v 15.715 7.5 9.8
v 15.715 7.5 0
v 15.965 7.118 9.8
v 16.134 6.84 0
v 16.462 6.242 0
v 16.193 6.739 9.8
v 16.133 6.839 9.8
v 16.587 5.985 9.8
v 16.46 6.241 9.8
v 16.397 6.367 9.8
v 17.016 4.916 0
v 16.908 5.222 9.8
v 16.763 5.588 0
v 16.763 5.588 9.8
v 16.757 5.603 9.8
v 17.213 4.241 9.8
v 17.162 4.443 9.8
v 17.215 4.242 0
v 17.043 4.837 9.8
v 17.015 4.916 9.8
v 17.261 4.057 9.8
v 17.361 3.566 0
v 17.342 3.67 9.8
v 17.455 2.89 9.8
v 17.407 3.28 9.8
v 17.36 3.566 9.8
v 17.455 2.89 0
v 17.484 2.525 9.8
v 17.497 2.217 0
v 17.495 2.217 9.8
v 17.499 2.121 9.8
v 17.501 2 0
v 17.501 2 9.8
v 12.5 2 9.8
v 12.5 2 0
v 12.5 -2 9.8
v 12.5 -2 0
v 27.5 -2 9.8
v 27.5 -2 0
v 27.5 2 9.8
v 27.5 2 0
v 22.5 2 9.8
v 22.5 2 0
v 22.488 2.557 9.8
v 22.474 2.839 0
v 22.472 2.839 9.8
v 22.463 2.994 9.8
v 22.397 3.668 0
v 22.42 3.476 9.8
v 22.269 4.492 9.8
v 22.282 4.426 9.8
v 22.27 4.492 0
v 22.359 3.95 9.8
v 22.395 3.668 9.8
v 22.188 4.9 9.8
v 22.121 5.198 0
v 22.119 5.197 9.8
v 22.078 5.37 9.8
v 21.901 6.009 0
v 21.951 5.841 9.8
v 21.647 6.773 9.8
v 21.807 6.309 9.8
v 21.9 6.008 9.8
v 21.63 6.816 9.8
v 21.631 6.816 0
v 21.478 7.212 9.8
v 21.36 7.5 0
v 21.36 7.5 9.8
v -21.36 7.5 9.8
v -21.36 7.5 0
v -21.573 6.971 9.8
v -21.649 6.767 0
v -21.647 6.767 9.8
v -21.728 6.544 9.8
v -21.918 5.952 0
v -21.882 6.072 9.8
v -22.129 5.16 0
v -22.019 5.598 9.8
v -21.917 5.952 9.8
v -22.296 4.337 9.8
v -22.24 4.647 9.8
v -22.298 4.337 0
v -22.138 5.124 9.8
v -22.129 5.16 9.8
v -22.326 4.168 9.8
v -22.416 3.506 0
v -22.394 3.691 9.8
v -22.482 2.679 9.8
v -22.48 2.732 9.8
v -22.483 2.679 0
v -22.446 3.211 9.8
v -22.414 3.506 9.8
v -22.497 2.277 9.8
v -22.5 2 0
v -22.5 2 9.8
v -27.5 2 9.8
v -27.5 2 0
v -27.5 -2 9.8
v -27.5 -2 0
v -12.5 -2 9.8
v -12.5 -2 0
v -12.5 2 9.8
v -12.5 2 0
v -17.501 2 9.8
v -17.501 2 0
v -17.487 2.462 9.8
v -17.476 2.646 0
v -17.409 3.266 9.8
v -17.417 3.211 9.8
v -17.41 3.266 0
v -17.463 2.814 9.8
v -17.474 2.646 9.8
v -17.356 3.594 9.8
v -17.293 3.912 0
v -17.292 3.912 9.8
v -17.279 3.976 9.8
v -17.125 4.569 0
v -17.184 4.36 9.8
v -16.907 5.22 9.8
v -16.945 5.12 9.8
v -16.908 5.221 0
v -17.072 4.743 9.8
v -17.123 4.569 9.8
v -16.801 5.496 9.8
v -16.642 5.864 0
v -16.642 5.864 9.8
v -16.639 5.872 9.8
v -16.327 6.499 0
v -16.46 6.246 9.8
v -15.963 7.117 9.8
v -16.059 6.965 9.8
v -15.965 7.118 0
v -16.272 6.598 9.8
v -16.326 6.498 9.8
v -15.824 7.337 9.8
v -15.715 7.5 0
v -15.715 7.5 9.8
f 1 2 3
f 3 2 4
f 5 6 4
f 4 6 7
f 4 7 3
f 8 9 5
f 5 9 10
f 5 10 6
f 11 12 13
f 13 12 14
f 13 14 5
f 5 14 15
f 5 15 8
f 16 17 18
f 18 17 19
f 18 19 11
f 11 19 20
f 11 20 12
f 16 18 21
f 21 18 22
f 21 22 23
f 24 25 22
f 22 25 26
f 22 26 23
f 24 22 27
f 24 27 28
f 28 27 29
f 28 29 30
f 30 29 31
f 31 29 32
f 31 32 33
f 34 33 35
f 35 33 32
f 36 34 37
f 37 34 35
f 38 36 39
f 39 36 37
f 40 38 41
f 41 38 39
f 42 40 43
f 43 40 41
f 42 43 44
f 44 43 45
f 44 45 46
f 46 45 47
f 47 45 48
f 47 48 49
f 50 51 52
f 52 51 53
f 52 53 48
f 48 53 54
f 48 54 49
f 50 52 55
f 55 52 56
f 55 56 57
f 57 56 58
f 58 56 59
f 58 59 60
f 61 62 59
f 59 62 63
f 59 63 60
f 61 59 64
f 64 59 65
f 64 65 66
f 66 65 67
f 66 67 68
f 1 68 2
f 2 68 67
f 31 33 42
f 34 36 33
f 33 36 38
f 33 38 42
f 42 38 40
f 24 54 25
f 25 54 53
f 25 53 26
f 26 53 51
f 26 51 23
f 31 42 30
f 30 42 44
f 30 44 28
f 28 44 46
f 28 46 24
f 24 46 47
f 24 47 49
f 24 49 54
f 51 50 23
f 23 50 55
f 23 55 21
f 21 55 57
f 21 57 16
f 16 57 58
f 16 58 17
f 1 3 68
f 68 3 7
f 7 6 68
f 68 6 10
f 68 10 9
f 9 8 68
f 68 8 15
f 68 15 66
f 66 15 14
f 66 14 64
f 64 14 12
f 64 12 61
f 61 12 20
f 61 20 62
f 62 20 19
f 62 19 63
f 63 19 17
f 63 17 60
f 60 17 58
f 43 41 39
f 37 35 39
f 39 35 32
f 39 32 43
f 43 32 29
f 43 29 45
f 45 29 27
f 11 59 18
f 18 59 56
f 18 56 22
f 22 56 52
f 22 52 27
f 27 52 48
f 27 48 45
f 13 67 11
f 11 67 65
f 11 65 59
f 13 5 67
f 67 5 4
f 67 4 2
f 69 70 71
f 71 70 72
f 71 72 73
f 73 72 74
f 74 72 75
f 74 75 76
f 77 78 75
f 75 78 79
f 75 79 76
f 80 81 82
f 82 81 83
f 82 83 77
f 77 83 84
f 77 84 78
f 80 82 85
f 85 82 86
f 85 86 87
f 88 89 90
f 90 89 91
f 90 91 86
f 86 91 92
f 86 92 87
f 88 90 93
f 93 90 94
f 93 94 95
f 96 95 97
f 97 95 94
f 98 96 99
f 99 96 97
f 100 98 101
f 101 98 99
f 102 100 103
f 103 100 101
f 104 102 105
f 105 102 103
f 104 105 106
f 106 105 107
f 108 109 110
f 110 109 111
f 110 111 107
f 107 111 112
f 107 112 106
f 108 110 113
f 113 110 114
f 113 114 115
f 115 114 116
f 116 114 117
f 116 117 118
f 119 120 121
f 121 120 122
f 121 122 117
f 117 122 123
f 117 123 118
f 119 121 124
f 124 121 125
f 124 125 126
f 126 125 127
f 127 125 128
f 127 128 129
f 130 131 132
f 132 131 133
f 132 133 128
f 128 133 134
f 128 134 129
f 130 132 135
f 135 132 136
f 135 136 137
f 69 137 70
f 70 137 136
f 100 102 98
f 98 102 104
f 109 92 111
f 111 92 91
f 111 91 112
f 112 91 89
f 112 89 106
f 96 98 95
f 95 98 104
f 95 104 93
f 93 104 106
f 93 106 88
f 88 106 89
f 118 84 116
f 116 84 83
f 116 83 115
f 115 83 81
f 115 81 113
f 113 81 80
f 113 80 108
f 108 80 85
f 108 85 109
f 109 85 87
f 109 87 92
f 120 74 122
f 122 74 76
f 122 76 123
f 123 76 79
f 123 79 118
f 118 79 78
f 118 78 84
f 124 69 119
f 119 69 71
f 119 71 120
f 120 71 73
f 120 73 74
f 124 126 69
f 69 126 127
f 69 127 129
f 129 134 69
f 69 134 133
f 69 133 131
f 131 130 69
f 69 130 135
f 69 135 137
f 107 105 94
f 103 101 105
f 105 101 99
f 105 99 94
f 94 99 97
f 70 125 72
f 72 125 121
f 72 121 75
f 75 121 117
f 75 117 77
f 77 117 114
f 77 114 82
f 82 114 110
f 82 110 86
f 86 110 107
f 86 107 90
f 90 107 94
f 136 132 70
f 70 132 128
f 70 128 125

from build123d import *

# Parameters (mm, degrees)
BOSS_EXTRUDE1_DEPTH   = 9.8
BOSS_EXTRUDE1_2_DEPTH = 9.8


with BuildPart() as part:
    # Sketch1 → Boss-Extrude1 (new body)
    with BuildSketch(Plane.XY):
        with BuildLine():
            Line((21.359807465, 7.499999649), (15.714609084, 7.499999527))
            add(Edge.make_bspline(
                [(17.500570812, 2), (17.497736554, 2.250648162), (17.489372691, 2.500811888), (17.447201657, 2.998910307), (17.415689774, 3.247046086), (17.290247951, 3.988745802), (17.166508355, 4.473645999), (16.844231636, 5.422924534), (16.647556681, 5.881606182), (16.210844588, 6.728869849), (15.973532615, 7.120043174), (15.714609084, 7.499999527)],
                knots=[0, 0, 0, 0, 0.125, 0.125, 0.25, 0.25, 0.5, 0.5, 0.75, 0.75, 0.979788675, 0.979788675, 0.979788675, 0.979788675], degree=3))
            Line((17.500570812, 2), (12.5, 2))
            Line((12.5, 2), (12.5, -2))
            Line((12.5, -2), (27.5, -2))
            Line((27.5, -2), (27.5, 2))
            Line((27.5, 2), (22.500362017, 2))
            add(Edge.make_bspline(
                [(21.359807465, 7.499999649), (21.438687374, 7.311792042), (21.515814035, 7.122923168), (21.672586019, 6.707511572), (21.751832498, 6.480795242), (21.972643578, 5.794402537), (22.096671487, 5.330493497), (22.296957284, 4.390233007), (22.372744412, 3.916098335), (22.448993124, 3.199099588), (22.468095241, 2.959757941), (22.49360504, 2.480386933), (22.49860953, 2.240281554), (22.500362017, 2)],
                knots=[0.018816483, 0.018816483, 0.018816483, 0.018816483, 0.125, 0.125, 0.25, 0.25, 0.5, 0.5, 0.75, 0.75, 0.875, 0.875, 1, 1, 1, 1], degree=3))
        make_face()
    extrude(amount=BOSS_EXTRUDE1_DEPTH)


with BuildPart() as body_2:
    # Sketch1 → Boss-Extrude1 2 (new body)
    with BuildSketch(Plane.XY):
        with BuildLine():
            Line((-15.714596986, 7.50000025), (-21.359807236, 7.500000185))
            add(Edge.make_bspline(
                [(-22.500362017, 2), (-22.498609518, 2.240283209), (-22.49360505, 2.48039432), (-22.468092808, 2.95979609), (-22.448985784, 3.199183914), (-22.372729792, 3.916205194), (-22.296934114, 4.390363947), (-22.096638482, 5.330626264), (-21.972616627, 5.794495662), (-21.751806537, 6.480871265), (-21.672573061, 6.707547006), (-21.515809829, 7.122933381), (-21.438685531, 7.311796411), (-21.359807236, 7.500000185)],
                knots=[0, 0, 0, 0, 0.125, 0.125, 0.25, 0.25, 0.5, 0.5, 0.75, 0.75, 0.875, 0.875, 0.981183217, 0.981183217, 0.981183217, 0.981183217], degree=3))
            Line((-22.500362017, 2), (-27.5, 2))
            Line((-27.5, 2), (-27.5, -2))
            Line((-27.5, -2), (-12.5, -2))
            Line((-12.5, -2), (-12.5, 2))
            Line((-12.5, 2), (-17.500571029, 2))
            add(Edge.make_bspline(
                [(-15.714596986, 7.50000025), (-15.973284717, 7.120402883), (-16.211295478, 6.728341652), (-16.65074088, 5.875010273), (-16.846936492, 5.415932879), (-17.167809593, 4.468789326), (-17.291139784, 3.984489447), (-17.416033619, 3.244473774), (-17.447438121, 2.996665332), (-17.489425197, 2.499607562), (-17.497743216, 2.250030732), (-17.500571029, 2)],
                knots=[0.02023416, 0.02023416, 0.02023416, 0.02023416, 0.25, 0.25, 0.5, 0.5, 0.75, 0.75, 0.875, 0.875, 1, 1, 1, 1], degree=3))
        make_face()
    extrude(amount=BOSS_EXTRUDE1_2_DEPTH)


solid = Compound([part.part, body_2.part])
